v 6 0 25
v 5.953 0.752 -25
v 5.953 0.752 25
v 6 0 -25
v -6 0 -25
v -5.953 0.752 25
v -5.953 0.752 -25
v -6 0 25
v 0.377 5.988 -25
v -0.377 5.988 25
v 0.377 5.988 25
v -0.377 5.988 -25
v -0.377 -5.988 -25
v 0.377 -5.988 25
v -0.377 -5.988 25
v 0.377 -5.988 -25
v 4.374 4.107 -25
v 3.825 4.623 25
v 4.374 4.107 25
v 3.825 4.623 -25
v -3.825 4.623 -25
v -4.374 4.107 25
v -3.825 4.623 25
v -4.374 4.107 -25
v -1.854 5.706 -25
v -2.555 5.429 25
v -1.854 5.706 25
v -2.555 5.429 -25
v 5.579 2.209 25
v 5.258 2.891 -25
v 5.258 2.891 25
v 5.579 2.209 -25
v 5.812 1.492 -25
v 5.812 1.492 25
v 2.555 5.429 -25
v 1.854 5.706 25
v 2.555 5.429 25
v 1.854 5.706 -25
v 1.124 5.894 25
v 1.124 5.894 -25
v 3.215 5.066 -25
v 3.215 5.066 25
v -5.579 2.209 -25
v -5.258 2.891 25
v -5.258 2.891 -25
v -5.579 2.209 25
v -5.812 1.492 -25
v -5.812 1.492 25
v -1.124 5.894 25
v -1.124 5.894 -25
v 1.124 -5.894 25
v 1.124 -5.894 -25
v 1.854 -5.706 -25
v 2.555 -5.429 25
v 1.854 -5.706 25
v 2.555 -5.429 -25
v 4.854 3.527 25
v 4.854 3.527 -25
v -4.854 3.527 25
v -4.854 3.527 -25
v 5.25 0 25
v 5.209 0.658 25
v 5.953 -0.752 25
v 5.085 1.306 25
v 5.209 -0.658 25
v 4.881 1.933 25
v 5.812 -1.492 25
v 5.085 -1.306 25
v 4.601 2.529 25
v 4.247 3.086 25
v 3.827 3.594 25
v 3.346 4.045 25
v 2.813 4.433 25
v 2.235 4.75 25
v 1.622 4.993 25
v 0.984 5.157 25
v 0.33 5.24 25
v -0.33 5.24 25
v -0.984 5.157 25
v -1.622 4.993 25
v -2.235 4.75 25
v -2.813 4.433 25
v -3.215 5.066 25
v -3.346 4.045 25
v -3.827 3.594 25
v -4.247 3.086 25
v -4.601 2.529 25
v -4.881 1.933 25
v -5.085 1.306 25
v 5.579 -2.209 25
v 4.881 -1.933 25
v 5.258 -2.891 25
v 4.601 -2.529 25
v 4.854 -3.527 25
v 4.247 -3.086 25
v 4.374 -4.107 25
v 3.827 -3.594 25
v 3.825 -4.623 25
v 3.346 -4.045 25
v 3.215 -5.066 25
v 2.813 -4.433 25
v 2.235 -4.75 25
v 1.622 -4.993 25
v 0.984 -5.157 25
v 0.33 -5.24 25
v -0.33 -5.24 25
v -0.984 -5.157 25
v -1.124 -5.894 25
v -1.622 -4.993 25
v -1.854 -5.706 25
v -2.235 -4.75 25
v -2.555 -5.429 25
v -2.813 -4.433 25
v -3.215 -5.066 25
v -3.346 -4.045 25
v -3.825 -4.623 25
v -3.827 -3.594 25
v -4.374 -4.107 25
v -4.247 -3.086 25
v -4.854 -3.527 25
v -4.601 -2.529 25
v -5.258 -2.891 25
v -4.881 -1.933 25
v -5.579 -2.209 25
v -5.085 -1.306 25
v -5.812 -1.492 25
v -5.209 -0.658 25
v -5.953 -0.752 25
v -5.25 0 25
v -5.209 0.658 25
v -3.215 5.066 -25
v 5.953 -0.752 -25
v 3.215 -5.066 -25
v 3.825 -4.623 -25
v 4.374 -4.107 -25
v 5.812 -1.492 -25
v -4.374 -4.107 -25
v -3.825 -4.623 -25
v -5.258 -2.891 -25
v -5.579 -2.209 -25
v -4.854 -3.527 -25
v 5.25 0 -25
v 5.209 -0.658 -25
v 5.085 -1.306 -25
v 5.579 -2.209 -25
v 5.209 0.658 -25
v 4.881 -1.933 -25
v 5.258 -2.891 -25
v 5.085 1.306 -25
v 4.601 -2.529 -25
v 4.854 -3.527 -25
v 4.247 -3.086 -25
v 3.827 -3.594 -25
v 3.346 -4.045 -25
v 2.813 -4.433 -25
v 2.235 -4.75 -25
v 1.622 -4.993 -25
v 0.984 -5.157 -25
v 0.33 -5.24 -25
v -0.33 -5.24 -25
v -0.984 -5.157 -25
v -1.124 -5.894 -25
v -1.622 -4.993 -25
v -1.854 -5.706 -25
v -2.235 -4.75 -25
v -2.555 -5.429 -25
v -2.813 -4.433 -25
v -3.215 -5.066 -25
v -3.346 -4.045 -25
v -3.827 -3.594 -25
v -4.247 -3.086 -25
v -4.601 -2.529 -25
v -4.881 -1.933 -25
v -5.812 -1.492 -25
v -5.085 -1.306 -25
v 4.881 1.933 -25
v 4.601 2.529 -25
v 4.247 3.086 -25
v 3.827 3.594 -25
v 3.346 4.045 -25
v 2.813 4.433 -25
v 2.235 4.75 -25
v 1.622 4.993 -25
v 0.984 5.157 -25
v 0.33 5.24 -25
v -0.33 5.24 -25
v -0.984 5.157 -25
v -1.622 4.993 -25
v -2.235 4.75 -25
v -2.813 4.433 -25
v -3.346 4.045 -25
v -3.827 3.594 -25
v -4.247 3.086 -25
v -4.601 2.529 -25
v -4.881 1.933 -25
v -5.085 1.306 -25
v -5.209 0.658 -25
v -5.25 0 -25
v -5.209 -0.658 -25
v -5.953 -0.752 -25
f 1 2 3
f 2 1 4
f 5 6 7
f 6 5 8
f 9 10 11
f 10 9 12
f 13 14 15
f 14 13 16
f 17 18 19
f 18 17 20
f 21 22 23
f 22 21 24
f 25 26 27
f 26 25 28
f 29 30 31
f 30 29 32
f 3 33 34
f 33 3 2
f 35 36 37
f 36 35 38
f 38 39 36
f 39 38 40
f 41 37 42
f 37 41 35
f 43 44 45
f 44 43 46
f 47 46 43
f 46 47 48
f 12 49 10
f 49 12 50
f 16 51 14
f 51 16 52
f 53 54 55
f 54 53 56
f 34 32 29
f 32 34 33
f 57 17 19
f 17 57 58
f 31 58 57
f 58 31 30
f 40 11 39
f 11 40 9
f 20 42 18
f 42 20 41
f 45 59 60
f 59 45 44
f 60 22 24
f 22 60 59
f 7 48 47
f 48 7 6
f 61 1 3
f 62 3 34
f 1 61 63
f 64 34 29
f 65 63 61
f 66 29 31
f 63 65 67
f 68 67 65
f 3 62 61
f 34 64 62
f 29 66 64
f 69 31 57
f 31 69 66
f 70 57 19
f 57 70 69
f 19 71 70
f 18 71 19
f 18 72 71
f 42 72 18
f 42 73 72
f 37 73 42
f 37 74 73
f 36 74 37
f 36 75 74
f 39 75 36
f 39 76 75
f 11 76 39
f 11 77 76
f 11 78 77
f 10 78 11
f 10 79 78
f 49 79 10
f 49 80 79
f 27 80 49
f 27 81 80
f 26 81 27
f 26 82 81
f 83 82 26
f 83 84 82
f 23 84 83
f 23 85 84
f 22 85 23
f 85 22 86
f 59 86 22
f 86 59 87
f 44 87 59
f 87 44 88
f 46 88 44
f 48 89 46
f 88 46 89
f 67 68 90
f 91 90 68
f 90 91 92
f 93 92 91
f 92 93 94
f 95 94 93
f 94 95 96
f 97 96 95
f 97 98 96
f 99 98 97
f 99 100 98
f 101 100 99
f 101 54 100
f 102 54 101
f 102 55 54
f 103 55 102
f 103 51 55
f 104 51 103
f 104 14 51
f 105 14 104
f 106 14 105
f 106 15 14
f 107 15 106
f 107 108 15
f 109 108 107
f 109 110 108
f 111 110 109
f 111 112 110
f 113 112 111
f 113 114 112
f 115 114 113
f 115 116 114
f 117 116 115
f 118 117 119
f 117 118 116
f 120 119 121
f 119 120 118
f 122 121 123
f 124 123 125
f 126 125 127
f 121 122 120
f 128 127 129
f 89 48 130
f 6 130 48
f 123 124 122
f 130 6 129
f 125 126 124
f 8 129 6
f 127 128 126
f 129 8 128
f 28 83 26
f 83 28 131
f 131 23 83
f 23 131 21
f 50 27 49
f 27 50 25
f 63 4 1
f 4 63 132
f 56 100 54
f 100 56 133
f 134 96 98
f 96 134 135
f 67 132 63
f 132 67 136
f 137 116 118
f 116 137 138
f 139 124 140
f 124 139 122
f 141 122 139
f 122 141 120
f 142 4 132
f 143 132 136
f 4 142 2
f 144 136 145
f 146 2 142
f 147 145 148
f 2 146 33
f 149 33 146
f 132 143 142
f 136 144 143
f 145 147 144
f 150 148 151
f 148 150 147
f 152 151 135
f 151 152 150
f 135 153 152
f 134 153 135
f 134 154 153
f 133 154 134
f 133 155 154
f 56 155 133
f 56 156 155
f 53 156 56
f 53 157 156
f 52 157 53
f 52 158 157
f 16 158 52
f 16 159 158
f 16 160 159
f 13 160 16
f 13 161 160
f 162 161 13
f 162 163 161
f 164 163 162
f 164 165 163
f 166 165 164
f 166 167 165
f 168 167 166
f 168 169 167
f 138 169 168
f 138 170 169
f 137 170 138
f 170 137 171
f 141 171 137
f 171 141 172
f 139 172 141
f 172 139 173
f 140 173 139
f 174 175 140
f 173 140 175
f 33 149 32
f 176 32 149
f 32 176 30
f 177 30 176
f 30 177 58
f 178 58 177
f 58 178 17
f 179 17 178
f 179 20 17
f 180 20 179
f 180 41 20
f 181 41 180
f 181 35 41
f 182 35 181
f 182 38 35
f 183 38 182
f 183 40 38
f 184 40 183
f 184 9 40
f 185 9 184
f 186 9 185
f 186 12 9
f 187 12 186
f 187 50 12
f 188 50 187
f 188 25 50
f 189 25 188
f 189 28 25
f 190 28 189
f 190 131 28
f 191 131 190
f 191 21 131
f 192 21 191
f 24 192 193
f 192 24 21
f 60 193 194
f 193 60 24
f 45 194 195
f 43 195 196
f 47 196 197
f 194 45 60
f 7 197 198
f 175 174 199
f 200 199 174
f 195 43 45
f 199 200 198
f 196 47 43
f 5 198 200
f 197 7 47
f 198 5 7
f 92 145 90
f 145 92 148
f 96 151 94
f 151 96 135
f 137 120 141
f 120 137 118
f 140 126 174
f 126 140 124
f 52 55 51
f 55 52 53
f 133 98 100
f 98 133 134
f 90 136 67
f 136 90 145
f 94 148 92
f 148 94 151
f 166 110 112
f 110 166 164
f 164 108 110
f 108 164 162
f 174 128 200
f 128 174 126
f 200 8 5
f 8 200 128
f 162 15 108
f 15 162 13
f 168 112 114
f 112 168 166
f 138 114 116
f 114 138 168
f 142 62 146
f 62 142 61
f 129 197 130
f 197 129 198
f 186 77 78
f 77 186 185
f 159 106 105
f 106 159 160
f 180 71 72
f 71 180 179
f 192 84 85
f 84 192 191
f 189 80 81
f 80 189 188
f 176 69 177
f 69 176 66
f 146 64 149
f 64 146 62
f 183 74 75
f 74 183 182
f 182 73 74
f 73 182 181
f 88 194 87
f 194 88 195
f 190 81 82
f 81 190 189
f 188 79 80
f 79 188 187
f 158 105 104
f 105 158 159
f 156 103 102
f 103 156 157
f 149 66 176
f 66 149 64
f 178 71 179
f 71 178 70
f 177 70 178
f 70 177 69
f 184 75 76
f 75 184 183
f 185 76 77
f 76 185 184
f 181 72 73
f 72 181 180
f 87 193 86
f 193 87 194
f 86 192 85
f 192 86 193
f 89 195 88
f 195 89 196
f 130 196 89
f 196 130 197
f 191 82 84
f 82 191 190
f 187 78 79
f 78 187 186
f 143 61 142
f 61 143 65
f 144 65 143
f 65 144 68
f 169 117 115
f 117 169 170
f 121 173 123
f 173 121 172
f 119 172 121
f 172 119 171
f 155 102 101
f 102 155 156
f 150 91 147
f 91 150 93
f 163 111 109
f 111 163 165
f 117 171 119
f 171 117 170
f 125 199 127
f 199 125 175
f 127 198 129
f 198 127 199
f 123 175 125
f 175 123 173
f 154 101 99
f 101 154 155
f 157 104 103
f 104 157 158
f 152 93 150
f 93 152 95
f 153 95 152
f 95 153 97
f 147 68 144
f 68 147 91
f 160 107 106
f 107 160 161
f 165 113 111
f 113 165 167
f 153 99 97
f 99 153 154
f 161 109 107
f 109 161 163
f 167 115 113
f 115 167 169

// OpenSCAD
$fn = 50;


difference() {
	union() {
		translate(v = [0, 0, -25.0000000000]) {
			cylinder(h = 50, r = 6.0000000000);
		}
	}
	union() {
		translate(v = [0, 0, -100.0000000000]) {
			cylinder(h = 200, r = 5.2500000000);
		}
	}
}
